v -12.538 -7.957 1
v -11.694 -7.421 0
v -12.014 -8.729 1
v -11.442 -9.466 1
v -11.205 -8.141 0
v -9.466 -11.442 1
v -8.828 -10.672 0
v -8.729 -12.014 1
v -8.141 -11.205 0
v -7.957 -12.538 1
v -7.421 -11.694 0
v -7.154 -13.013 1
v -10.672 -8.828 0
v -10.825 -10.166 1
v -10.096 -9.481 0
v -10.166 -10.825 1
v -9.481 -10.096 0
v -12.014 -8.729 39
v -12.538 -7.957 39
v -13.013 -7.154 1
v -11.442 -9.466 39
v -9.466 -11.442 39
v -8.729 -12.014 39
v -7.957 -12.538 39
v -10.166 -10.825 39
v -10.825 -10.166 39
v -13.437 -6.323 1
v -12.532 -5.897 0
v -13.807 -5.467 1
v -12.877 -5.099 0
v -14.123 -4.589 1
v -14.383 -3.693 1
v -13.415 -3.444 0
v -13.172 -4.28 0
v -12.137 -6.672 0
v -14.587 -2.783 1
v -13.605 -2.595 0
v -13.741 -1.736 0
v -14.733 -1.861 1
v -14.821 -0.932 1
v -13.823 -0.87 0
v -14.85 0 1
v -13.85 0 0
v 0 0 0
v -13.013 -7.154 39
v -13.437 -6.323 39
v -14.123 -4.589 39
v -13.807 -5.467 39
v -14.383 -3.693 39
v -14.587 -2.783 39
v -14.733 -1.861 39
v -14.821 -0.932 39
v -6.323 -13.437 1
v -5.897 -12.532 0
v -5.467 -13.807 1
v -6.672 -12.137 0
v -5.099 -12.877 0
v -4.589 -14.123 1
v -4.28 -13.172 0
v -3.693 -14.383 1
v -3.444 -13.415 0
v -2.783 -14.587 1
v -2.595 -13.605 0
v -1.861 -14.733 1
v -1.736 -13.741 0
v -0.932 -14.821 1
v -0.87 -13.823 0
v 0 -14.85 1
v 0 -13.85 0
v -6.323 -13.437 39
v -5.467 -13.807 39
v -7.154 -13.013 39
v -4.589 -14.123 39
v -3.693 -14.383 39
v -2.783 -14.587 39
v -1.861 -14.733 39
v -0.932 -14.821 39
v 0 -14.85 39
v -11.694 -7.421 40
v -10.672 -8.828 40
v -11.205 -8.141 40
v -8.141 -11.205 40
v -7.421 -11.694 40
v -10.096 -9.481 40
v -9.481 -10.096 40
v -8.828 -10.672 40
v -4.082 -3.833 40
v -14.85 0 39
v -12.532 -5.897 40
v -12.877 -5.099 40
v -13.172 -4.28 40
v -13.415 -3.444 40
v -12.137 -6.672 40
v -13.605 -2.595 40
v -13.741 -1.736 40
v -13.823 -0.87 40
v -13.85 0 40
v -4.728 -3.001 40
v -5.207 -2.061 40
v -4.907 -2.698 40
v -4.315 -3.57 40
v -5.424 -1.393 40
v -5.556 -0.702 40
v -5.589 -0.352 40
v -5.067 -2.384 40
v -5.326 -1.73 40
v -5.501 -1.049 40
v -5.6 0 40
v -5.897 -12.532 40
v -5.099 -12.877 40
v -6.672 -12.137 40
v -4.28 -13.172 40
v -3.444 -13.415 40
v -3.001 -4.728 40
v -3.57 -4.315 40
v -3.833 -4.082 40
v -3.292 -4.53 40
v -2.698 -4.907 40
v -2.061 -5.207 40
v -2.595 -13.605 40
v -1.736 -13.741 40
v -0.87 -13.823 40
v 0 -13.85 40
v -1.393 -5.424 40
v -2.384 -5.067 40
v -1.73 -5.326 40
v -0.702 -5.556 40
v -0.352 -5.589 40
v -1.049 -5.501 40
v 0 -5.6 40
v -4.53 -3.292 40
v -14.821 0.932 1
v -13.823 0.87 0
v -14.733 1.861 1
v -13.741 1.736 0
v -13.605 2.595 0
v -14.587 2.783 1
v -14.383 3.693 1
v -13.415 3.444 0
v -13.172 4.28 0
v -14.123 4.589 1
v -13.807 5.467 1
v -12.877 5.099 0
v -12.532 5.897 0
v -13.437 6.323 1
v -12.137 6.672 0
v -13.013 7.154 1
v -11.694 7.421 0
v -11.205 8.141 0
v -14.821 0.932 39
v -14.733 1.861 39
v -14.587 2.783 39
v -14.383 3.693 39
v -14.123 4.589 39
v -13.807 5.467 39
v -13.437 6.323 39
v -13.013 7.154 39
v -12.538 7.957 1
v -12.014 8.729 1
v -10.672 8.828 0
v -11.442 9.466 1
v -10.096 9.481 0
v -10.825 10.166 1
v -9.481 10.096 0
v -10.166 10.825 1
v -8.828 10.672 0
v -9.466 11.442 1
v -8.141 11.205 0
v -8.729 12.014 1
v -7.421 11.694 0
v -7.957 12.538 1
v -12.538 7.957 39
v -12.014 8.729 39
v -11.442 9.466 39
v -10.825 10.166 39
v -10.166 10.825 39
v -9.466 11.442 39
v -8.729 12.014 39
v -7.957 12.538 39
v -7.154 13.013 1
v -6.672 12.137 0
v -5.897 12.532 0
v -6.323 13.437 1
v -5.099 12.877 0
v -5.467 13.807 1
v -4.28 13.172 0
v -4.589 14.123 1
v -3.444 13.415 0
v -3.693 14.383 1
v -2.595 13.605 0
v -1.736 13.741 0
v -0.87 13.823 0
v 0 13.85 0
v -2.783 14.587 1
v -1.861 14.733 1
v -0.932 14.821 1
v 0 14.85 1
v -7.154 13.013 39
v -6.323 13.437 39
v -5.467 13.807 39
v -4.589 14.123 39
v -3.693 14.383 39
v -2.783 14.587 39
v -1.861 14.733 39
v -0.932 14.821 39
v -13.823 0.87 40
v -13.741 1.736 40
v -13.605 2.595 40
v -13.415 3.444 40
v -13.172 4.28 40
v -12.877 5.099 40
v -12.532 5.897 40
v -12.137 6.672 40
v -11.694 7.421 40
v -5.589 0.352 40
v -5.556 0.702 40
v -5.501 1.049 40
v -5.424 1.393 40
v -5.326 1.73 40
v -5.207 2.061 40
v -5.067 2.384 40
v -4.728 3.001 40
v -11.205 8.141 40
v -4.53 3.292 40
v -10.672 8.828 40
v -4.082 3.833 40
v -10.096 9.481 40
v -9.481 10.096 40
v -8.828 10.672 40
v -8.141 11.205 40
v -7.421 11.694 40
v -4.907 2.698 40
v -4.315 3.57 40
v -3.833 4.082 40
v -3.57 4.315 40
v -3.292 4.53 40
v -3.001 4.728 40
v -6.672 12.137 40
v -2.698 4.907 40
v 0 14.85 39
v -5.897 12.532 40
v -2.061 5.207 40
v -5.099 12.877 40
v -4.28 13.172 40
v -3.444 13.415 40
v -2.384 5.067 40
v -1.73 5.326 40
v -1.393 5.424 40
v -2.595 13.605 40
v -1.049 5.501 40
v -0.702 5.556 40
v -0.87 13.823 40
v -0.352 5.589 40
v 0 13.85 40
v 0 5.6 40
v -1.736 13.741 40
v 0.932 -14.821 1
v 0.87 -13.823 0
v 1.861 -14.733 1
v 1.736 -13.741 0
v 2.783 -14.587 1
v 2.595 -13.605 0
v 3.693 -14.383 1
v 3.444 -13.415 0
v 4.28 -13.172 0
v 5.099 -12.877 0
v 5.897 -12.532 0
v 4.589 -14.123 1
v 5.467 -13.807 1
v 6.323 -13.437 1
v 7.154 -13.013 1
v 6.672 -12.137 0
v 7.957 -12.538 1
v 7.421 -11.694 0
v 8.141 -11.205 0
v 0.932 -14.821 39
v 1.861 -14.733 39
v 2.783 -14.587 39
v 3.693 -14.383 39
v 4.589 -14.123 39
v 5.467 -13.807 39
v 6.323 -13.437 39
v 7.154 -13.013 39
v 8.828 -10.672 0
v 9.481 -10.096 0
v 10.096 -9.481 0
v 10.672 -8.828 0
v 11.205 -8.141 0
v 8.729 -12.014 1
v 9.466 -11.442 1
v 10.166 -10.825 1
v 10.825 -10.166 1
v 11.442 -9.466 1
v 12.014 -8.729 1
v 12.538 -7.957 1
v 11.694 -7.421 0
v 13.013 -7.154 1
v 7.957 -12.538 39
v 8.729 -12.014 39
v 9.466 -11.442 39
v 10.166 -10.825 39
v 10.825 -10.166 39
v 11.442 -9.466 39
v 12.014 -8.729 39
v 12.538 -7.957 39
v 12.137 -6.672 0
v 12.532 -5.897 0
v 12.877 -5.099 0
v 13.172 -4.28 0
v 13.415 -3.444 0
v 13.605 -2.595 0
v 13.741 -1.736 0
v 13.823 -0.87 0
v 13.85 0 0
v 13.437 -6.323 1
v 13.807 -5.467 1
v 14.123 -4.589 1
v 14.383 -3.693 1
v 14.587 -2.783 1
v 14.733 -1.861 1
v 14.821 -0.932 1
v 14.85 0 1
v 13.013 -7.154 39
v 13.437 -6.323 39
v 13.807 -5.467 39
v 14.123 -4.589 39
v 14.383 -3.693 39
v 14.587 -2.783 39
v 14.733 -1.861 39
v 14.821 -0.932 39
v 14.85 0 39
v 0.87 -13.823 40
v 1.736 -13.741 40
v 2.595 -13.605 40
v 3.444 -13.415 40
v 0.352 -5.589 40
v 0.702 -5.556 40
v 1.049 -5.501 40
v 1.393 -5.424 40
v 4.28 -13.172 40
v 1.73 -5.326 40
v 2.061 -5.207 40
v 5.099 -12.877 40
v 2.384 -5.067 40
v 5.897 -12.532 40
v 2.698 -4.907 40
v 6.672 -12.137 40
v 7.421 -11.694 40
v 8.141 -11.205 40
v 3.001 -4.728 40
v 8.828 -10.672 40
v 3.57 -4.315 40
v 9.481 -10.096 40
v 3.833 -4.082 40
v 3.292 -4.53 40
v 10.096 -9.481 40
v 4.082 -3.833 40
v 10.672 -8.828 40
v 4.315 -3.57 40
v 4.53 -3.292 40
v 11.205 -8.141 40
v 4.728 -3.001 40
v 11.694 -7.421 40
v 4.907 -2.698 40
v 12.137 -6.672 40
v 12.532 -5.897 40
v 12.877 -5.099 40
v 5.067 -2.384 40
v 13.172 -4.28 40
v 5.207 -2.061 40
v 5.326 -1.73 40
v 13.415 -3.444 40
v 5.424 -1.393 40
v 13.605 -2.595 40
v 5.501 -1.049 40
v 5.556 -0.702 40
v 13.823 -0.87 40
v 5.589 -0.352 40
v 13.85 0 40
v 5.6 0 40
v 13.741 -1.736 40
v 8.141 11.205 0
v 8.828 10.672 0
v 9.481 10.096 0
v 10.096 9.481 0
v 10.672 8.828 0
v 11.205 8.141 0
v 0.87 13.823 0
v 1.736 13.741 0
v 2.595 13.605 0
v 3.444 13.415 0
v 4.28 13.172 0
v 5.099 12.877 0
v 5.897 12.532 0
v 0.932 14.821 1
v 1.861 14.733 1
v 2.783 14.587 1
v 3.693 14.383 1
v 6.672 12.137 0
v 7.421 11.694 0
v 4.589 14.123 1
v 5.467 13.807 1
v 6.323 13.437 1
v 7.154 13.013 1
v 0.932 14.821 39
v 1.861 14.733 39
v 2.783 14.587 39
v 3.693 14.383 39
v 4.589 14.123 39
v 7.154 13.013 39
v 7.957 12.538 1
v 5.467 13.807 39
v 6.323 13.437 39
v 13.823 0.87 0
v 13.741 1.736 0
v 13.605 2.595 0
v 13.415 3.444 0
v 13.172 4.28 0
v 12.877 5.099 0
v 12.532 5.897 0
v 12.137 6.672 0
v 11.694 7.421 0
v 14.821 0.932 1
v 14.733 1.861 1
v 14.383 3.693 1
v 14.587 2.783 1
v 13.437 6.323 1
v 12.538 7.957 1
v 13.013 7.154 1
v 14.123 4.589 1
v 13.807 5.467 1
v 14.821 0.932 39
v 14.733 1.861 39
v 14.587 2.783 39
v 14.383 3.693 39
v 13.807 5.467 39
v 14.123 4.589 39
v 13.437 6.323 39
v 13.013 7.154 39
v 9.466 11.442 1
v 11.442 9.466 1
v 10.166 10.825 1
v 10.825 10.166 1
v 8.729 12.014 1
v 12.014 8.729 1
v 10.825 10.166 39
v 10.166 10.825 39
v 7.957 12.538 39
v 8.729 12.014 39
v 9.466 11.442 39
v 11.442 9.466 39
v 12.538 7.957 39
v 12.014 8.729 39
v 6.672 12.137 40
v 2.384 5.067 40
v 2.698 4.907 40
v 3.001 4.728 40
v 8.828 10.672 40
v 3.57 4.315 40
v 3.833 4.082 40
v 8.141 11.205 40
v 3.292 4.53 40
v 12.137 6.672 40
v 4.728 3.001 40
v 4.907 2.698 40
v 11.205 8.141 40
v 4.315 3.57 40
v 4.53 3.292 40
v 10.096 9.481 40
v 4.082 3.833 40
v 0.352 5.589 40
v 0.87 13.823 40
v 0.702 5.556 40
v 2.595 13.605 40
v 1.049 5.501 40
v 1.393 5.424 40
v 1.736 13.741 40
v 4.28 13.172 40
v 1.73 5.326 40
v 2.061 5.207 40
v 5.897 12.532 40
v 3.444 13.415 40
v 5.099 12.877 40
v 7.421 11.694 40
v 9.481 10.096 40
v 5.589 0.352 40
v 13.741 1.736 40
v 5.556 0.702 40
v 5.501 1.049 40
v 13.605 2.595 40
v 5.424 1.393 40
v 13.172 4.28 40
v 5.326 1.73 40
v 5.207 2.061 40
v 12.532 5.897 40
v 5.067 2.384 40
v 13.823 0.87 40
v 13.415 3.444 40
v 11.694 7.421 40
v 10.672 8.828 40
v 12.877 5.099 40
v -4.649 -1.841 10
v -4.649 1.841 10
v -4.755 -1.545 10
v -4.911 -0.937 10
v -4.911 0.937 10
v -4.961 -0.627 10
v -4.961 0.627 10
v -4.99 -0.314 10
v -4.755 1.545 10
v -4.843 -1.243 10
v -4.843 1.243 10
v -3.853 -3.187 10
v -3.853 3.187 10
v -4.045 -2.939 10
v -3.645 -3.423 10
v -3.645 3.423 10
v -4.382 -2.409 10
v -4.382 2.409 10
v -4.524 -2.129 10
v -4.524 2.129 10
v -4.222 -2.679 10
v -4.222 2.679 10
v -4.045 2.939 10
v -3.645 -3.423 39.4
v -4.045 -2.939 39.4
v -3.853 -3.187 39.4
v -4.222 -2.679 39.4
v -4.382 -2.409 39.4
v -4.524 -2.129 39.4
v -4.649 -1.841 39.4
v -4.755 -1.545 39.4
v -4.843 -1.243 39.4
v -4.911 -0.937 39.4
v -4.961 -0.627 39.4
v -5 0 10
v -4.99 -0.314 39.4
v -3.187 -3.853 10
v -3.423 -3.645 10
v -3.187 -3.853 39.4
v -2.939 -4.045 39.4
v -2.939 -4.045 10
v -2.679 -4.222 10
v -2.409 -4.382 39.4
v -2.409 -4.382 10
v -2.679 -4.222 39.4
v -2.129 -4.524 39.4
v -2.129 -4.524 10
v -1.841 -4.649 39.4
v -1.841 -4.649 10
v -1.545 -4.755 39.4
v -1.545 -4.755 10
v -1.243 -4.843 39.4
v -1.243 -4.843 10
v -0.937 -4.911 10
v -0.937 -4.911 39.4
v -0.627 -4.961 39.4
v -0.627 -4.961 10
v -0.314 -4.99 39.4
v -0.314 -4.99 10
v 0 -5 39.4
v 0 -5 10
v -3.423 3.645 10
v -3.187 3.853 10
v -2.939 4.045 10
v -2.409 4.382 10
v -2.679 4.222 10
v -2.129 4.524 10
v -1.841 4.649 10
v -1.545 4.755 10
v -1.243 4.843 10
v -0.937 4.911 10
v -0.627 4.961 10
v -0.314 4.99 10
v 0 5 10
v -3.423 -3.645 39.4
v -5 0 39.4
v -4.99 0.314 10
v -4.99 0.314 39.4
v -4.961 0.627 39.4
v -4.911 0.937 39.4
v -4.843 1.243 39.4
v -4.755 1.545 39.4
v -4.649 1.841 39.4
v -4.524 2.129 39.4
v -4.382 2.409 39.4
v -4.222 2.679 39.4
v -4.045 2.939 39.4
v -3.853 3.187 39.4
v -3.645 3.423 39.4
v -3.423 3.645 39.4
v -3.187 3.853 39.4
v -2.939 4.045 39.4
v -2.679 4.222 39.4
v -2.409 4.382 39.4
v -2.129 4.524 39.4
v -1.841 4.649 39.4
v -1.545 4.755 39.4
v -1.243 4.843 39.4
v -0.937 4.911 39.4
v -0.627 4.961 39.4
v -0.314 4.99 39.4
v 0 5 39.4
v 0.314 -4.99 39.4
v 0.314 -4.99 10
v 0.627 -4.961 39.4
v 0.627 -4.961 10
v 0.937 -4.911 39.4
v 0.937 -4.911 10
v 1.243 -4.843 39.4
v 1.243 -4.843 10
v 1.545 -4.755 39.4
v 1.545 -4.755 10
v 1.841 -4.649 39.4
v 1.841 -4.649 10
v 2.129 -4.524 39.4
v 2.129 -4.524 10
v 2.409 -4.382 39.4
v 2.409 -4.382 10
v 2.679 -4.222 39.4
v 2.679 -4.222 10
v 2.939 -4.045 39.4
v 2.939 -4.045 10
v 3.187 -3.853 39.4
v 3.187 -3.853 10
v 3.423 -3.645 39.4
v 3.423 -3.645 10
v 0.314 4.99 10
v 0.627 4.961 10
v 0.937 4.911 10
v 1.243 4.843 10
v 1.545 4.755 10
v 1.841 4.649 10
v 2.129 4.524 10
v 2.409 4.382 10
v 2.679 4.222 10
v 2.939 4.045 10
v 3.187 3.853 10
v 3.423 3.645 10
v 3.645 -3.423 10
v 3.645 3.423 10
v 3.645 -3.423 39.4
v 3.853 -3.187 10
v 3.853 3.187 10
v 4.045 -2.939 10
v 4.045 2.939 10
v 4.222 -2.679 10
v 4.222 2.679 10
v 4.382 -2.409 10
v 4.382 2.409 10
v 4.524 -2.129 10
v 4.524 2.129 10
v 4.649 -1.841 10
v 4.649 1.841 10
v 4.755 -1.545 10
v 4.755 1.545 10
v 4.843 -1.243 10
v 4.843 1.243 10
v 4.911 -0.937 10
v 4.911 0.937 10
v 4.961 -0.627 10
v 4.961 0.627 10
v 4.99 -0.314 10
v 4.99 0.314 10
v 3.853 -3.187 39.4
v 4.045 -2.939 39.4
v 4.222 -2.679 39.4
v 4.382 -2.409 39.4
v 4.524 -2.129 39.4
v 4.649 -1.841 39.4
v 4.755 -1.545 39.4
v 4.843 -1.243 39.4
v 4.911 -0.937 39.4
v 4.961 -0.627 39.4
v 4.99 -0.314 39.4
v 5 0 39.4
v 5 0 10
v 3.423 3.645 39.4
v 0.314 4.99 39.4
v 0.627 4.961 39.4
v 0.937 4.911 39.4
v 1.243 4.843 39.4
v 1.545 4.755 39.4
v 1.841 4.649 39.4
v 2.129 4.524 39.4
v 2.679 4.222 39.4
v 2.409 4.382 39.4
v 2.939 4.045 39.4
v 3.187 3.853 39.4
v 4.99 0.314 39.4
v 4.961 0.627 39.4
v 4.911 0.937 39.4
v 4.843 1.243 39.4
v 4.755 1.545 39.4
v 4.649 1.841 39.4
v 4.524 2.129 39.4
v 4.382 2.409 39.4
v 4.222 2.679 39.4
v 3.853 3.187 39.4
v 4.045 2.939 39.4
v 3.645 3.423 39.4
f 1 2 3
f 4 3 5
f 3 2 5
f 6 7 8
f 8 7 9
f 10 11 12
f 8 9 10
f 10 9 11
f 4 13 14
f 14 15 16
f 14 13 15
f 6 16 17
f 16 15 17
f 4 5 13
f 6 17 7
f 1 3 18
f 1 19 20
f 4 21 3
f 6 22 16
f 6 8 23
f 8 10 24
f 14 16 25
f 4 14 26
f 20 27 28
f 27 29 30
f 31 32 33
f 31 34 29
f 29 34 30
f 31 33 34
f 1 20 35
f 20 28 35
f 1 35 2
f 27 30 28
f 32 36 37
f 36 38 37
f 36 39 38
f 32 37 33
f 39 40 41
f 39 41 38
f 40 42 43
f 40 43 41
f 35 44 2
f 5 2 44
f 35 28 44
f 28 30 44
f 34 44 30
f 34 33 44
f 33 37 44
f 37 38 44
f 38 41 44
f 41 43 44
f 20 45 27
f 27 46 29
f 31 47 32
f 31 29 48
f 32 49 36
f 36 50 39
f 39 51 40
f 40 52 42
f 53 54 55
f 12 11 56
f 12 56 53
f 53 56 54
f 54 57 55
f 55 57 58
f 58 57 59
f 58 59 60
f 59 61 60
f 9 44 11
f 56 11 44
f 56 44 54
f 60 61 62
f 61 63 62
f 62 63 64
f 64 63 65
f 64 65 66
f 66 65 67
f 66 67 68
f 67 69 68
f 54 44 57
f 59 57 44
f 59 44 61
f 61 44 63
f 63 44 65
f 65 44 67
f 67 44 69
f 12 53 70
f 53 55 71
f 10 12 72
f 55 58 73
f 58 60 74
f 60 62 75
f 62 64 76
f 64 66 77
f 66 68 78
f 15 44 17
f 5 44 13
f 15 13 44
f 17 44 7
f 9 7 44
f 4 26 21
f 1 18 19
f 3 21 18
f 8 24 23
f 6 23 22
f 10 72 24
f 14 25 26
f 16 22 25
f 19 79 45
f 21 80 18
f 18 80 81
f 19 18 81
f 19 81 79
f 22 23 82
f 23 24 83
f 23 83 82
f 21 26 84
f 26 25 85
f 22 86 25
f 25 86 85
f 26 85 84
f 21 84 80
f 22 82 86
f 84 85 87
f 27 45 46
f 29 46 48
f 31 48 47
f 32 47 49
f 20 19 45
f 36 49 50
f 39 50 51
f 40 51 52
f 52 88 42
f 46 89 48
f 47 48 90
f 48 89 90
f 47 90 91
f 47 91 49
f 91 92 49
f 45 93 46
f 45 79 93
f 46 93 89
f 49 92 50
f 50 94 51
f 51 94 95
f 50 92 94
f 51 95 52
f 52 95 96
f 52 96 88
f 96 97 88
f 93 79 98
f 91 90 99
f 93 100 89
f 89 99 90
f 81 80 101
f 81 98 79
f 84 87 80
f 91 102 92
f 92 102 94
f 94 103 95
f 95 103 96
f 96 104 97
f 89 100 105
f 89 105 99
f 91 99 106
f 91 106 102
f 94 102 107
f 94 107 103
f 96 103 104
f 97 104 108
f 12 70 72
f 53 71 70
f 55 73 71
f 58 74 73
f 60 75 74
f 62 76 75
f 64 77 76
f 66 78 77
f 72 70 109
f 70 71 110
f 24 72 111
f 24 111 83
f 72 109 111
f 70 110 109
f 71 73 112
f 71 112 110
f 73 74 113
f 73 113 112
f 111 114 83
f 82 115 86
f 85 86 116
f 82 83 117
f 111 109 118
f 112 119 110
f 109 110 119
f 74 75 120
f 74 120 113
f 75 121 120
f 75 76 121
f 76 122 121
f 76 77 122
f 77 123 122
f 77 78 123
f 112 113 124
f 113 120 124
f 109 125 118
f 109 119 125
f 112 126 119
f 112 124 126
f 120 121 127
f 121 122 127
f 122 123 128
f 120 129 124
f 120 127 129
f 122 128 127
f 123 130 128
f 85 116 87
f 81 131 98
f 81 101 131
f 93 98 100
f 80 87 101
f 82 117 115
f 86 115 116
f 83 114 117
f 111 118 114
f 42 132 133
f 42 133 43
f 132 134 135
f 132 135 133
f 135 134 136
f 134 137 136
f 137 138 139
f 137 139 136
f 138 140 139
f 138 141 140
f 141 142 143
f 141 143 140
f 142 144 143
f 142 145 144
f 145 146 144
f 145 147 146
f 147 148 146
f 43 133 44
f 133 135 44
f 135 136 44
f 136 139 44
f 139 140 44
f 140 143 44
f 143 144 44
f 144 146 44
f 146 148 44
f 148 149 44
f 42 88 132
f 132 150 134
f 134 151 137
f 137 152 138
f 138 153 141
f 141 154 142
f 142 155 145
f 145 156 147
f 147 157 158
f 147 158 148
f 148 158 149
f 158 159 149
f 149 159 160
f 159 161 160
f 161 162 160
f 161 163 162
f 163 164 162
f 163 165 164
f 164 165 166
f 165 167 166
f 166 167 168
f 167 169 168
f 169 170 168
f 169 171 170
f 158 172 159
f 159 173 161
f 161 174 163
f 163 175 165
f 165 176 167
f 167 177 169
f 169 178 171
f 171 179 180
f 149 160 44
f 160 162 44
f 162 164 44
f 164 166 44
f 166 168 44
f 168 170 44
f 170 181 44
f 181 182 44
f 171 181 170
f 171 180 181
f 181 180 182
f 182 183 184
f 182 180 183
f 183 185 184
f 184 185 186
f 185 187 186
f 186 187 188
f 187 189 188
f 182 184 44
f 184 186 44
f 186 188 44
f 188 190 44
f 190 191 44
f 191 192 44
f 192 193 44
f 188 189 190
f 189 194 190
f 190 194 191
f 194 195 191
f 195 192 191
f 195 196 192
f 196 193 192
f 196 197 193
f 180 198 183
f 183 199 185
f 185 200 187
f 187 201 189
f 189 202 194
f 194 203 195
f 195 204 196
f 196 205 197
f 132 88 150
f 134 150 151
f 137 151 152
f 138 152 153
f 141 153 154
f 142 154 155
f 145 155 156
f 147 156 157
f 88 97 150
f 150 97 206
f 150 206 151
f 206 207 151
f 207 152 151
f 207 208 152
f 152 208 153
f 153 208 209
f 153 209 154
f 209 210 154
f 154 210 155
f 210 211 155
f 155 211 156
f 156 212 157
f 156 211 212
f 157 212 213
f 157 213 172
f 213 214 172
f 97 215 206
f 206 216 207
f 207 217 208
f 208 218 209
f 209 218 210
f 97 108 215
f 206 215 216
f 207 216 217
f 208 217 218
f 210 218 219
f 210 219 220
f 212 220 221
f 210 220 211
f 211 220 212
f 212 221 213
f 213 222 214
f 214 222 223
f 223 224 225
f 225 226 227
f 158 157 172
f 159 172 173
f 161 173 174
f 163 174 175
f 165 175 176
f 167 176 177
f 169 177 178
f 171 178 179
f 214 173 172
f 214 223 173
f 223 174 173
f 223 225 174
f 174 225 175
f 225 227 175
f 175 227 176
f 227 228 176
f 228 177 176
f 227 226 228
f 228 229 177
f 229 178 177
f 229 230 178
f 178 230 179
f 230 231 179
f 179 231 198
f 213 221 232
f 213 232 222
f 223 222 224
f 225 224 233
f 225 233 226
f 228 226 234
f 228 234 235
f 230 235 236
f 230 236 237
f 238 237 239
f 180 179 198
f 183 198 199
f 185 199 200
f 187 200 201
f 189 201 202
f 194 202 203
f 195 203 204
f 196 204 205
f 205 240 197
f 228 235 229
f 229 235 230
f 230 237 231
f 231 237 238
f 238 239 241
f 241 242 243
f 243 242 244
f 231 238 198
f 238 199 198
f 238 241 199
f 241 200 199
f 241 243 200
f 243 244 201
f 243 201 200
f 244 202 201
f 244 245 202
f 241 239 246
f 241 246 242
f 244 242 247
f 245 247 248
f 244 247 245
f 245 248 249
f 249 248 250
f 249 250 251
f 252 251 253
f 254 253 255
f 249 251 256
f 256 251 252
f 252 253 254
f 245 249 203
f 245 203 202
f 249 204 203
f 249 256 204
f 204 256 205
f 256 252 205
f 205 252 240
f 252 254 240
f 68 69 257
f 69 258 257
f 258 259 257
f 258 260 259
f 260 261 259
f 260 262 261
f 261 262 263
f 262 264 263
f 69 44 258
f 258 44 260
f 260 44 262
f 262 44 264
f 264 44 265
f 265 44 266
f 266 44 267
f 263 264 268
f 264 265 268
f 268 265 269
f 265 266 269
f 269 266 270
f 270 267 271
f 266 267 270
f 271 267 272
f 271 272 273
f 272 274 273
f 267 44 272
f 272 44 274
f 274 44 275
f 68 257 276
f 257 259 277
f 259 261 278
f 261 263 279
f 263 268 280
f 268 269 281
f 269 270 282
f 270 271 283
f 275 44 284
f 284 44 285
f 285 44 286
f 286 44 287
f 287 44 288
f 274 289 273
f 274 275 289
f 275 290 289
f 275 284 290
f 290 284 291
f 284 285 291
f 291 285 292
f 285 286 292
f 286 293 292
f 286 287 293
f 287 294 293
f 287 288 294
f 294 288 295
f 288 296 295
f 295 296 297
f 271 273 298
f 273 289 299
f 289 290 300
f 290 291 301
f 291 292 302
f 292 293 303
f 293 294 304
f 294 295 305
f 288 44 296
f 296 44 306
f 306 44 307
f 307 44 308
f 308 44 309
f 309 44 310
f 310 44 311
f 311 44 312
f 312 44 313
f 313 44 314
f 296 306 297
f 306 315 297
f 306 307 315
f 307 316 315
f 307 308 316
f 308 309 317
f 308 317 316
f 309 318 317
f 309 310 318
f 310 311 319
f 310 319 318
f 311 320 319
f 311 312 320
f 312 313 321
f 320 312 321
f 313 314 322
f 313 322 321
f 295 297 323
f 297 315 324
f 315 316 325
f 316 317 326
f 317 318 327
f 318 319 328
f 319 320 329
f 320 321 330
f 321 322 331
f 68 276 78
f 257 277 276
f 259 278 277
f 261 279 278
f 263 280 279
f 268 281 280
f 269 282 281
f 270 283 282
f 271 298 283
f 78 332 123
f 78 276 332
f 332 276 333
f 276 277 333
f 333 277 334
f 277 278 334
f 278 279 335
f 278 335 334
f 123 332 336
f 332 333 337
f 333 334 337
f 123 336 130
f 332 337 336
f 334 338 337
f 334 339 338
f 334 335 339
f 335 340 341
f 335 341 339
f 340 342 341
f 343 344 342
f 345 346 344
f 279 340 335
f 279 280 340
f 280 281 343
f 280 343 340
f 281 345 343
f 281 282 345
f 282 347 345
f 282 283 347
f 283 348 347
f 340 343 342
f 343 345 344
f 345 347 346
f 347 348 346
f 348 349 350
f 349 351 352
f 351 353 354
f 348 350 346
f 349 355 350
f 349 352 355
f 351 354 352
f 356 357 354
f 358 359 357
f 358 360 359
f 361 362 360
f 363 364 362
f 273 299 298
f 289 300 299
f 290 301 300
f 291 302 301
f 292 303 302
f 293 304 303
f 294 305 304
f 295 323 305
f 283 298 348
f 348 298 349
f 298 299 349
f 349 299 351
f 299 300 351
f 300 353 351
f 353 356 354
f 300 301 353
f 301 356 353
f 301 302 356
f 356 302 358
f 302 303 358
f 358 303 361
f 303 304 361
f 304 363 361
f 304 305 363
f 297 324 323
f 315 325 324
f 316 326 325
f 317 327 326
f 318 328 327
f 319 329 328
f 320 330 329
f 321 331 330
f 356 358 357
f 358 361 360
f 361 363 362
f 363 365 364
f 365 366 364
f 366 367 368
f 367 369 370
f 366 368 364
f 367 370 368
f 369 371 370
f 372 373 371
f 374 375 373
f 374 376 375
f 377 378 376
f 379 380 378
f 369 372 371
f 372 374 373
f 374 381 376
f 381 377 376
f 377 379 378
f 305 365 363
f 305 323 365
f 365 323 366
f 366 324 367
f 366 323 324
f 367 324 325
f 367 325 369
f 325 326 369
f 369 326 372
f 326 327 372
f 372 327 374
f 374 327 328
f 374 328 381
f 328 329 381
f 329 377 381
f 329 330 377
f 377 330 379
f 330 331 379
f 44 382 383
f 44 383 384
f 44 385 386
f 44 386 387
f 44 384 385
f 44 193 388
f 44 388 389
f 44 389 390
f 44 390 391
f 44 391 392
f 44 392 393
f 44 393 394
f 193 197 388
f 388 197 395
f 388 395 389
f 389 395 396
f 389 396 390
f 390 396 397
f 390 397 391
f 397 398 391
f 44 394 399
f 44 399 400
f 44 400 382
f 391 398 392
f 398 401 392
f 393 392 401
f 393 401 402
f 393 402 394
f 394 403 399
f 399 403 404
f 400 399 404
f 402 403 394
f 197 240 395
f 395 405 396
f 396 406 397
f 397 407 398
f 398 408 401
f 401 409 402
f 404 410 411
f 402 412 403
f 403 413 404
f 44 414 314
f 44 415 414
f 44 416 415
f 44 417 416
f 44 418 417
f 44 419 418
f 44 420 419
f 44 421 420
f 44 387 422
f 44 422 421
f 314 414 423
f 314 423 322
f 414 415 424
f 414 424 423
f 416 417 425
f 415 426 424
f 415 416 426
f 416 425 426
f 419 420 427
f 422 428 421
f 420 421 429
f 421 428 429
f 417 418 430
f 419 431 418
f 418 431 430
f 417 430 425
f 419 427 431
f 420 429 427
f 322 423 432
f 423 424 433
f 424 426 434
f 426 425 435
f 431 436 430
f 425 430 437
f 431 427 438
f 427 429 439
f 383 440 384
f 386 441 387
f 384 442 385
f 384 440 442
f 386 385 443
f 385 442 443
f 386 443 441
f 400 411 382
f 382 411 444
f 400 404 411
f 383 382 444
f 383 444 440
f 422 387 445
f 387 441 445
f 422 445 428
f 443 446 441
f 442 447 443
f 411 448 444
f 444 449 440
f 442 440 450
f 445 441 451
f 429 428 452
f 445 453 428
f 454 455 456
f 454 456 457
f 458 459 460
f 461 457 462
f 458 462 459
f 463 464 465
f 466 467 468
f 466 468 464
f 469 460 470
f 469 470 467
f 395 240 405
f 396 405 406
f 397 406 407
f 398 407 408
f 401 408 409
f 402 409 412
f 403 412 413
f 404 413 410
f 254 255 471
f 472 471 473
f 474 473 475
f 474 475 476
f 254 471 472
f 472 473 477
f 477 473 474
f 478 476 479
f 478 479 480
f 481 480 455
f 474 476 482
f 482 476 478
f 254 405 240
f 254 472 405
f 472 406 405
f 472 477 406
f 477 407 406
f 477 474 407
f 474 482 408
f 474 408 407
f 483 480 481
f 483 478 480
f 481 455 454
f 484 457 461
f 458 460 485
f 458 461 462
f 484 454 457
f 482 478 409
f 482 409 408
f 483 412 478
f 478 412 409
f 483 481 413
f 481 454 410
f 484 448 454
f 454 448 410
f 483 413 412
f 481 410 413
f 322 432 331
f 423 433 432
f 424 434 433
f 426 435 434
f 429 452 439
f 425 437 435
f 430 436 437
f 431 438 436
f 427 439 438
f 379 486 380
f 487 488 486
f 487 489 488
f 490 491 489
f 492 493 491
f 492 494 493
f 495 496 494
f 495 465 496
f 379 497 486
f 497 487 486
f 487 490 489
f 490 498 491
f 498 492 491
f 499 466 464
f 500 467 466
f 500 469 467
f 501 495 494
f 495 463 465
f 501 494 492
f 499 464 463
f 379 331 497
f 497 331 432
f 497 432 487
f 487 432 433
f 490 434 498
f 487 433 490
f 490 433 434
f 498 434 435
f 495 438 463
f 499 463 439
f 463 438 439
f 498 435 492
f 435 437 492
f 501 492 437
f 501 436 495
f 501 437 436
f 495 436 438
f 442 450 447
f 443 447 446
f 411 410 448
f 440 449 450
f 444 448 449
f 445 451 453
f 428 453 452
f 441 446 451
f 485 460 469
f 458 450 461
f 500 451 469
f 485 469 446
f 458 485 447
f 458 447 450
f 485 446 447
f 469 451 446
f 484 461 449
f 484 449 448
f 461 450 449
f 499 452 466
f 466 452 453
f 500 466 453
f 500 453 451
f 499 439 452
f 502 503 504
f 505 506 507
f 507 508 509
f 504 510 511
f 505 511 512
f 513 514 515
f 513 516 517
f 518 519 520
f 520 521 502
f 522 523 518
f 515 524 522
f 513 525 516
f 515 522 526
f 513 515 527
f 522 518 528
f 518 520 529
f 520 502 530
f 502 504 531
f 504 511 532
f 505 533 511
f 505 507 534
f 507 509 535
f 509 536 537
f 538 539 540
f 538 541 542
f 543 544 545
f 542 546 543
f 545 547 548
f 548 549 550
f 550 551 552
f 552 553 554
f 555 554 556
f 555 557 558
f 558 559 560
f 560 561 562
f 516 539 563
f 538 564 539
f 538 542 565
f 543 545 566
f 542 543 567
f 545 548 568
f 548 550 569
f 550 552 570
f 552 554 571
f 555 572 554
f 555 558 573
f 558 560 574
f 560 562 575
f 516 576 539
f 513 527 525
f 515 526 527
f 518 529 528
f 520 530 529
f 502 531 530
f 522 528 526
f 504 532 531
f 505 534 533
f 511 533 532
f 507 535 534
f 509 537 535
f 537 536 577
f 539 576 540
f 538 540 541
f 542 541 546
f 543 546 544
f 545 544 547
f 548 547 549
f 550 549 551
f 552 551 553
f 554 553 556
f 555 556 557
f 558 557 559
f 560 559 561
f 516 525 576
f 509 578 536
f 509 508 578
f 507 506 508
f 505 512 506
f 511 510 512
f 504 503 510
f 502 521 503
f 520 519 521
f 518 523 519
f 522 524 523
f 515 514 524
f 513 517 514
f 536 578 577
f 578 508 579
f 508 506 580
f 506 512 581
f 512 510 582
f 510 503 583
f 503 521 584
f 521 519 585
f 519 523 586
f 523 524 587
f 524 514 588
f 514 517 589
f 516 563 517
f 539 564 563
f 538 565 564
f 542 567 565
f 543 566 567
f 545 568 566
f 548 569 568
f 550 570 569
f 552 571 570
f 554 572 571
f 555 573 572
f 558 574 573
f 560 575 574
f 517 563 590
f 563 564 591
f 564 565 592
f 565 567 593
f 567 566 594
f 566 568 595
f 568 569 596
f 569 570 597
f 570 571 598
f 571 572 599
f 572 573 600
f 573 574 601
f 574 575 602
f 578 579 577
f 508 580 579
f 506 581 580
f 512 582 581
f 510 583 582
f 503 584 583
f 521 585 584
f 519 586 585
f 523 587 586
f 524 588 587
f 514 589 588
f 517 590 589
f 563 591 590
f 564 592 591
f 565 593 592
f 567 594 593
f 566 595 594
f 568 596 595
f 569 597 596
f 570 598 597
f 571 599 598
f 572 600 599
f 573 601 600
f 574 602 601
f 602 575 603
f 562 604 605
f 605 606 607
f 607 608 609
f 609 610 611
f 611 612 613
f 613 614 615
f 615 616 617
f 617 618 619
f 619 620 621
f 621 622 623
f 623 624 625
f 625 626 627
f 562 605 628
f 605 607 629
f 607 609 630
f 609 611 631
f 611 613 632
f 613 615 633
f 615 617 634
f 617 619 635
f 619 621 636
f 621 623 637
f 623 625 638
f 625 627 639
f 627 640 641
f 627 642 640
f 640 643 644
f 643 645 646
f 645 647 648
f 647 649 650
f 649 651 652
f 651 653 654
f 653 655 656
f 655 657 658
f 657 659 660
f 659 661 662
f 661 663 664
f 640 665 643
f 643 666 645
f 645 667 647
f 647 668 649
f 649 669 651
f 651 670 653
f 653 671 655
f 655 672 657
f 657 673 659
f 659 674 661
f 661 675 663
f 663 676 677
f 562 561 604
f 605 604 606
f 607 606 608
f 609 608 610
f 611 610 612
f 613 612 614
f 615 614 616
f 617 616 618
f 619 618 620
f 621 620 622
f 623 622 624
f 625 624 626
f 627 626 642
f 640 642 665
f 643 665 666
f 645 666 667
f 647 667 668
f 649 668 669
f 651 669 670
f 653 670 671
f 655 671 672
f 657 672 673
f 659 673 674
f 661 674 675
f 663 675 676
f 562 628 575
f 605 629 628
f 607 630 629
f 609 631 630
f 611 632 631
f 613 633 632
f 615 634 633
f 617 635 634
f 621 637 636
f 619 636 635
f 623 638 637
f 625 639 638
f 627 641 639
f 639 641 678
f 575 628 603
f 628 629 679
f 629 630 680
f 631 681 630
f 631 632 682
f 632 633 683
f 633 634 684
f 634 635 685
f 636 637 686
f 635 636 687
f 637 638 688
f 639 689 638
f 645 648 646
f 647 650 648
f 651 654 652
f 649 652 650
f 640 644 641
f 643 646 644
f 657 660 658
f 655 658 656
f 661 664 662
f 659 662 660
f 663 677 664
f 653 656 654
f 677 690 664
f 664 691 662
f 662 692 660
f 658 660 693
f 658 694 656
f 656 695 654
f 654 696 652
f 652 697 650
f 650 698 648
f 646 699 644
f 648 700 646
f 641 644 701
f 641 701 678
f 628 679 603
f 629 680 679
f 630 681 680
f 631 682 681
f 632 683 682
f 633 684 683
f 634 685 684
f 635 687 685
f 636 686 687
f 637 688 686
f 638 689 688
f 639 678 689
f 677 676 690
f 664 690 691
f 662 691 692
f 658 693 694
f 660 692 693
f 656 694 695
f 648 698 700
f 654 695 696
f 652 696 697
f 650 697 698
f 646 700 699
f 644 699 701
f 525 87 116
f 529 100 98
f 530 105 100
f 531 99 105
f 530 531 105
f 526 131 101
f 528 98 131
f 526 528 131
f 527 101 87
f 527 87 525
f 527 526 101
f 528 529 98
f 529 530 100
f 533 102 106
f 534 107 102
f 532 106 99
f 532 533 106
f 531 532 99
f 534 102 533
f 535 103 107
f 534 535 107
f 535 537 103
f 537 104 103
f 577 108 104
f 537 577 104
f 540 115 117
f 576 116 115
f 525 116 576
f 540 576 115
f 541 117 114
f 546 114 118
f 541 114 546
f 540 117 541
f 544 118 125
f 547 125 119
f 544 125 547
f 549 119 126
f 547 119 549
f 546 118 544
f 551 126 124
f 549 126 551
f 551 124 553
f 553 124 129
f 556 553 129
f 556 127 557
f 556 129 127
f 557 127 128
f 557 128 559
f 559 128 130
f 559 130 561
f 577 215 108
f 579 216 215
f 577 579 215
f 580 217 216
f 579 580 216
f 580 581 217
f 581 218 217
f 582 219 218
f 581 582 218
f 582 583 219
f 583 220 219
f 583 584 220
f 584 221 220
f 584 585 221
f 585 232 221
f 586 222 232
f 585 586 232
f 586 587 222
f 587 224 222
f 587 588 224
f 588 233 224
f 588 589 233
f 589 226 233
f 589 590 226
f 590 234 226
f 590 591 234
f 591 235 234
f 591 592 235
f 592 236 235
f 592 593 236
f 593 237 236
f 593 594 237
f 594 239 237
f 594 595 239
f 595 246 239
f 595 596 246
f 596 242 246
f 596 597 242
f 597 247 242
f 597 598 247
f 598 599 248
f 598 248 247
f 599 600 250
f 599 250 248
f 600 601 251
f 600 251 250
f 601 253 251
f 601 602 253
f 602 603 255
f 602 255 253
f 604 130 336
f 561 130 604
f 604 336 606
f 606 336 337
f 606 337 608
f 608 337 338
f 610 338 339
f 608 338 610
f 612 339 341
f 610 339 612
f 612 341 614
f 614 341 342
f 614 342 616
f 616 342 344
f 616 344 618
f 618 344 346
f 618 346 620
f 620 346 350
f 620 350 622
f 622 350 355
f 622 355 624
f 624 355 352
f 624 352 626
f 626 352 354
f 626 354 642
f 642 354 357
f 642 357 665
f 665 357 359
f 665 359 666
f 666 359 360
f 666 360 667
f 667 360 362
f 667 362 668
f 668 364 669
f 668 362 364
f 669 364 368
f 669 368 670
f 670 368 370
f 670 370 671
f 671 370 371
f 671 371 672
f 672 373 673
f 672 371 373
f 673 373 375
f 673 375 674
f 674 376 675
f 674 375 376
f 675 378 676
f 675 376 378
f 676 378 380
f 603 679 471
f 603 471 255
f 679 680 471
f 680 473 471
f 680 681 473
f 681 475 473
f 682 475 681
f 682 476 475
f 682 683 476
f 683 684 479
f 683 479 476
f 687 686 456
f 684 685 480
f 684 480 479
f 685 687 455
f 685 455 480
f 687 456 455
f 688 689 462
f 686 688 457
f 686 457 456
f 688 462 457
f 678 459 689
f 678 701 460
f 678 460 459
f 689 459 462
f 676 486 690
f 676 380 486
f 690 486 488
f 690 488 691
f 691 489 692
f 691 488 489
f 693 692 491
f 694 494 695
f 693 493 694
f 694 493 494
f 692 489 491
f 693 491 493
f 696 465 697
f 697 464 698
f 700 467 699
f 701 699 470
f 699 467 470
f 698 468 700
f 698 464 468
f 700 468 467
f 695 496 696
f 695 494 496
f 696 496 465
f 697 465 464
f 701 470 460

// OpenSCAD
// ============================================================
// Dowel end cap — a blind socket that closes off a dowel end
//
// A plain cylinder with a cylindrical recess bored into one
// end. The dowel pushes into the recess until it bottoms out;
// the remaining material caps the end.
//
// Optionally a countersunk screw hole runs through the closed
// end, so a flat-head screw can pull the cap down onto the
// dowel instead of the fit or a glue line holding it there.
//
// Modeled mouth up, closed end on the plate.
//
// The cap DEFINES its own proportions from one measurement.
// Everything is driven by the dowel diameter plus the meat you
// want around it, so the outside diameter and the overall
// length both fall out of the numbers below rather than being
// set directly.
//
// The recess is a dimension inside a hollow solid, so it is
// never measured — it is bored to the dowel diameter plus a
// clearance knob. Measure the dowel, not the hole you want.
//
// PRINT NOTES:
// - PETG or PLA, no supports needed.
// - Print as modeled, closed end down. The bore opens upward,
//   so nothing bridges, and the visible end face is laid
//   against the plate. Flipped, the bore roof has to bridge
//   its full width — it works, but it leaves a rough ceiling
//   for the dowel to bottom out against.
// - The bore prints round with the axis vertical either way.
// - Chamfers break both rims and take the elephant foot off
//   whichever end lands on the plate.
// - The countersink opens at the plate and closes in at 45
//   deg, so it is self-supporting exactly like the chamfers.
//   It makes the first layer a ring rather than a disc, which
//   costs a little bed adhesion — the end face is wide, so
//   there is plenty left.
// ============================================================

// ===== MEASURE THESE ON YOUR ACTUAL DOWEL AND SCREW =====
// All outside-the-solid measurements, so plain calipers reach them. Each names
// the caliper it needs by the size printed on the tool: a 6 in caliper stops at
// 150 mm, an 8 in at 200 mm, a 12 in at 300 mm

// Outer diameter of the dowel (mm) — outside jaws on the dowel, 6 in caliper.
// Take it in two or three places and around a couple of rotations: wooden
// dowel is rarely round and rarely the size on the label. Use the largest
// reading, since that is the one that has to fit
dowel_d = 9.7;

// Outer diameter of the screw over its threads (mm) — outside jaws on the
// threaded shank, 6 in caliper. Only used when screw_hole is on
screw_shank_d = 3;

// Outer diameter of the screw head at its widest (mm) — outside jaws across
// the top face of a flat head, 6 in caliper. The countersink is cut to this,
// so it is the number that decides how deep the cone goes. Only used when
// screw_hole is on
screw_head_d = 7;

// ===== DECIDE THESE =====
// Choices, not measurements — the cap is whatever these make it

// Bore a countersunk screw hole through the closed end, for a flat-head screw
// driven into the end grain of the dowel. Off leaves the plain cap
screw_hole = false;

// How far the dowel goes into the cap (mm). Deeper grips better and resists
// being levered off sideways; about 1.5 dowel diameters is plenty
penetration_depth = 30;

// Thickness of material around the dowel (mm). Sets the outside diameter and
// the thickness capping the end, both at once
wall_meat = 10;

// ===== TUNE THESE =====
dowel_clearance = 0.3; // Added to the bored diameter for a glue or friction fit (mm) — raise if it will not seat, drop toward 0 for a tighter press
screw_clearance = 0.4; // Added to both bored screw diameters (mm) — the shank slips through rather than threading into the plastic, and the head sinks half of this below flush
chamfer = 1; // Break on both outer rims (mm)
lead_in = 0.6; // Funnel at the mouth of the bore, to start the dowel square (mm)

$fn = 100;

// ===== DERIVED =====
bore_d = dowel_d + dowel_clearance;
cap_d = dowel_d + 2 * wall_meat;
cap_length = penetration_depth + wall_meat;
screw_shank_hole_d = screw_shank_d + screw_clearance;
screw_head_hole_d = screw_head_d + screw_clearance;

// Depth of the countersink cone. It is half the difference of the two bored
// diameters and nothing else, which is what makes the cone 45 deg to the plate
// — a 90 deg included angle, the flat-head standard — whatever screw it is cut
// for
countersink_depth = (screw_head_hole_d - screw_shank_hole_d) / 2;

// Straight-walled part of the screw hole, left under the cone. The cone eats
// down from the plate and the bore floor caps it from above, so this is what
// keeps the two from meeting
screw_seat = wall_meat - countersink_depth;

// Material left on the end face, once the outer chamfer has taken from the
// outside and the countersink mouth has opened up in the middle
end_face_ring = (cap_d - 2 * chamfer - screw_head_hole_d) / 2;

// Material left on the face of the rim, once the outer chamfer has taken from
// the outside and the lead-in funnel has taken from the inside. The cap is
// only as strong at the mouth as this, and it is the first thing a large
// chamfer or a generous lead-in eats
rim_face = (cap_d - bore_d) / 2 - chamfer - lead_in;

echo(str("outside diameter = ", cap_d, " mm"));
echo(str("overall length = ", cap_length, " mm"));
echo(str("bored diameter = ", bore_d, " mm"));
echo(str("rim face at the mouth = ", rim_face, " mm"));

if (screw_hole) {
  echo(str("screw shank hole = ", screw_shank_hole_d, " mm"));
  echo(str("countersink mouth = ", screw_head_hole_d, " mm across, ", countersink_depth, " mm deep"));
  echo(str("straight hole under the countersink = ", screw_seat, " mm"));
  echo(str("end face ring outside the countersink = ", end_face_ring, " mm"));
}

assert(wall_meat > 0, "wall_meat has to be positive — there is no cap without material around the dowel");
assert(penetration_depth > 0, "penetration_depth has to be positive — the dowel has to go somewhere");
assert(bore_d > 0, "dowel_clearance has closed the bore — it cannot be more negative than the dowel is wide");
assert(rim_face > 0, "the mouth has no rim left — reduce chamfer or lead_in, or add wall_meat");
assert(chamfer < cap_length / 2, "the two outer chamfers have met in the middle — reduce chamfer");
assert(lead_in < penetration_depth, "the lead-in funnel is deeper than the bore — reduce lead_in");
assert(!screw_hole || screw_head_d > screw_shank_d, "screw_head_d is no wider than screw_shank_d — that screw has no head to countersink");
assert(!screw_hole || screw_shank_hole_d < bore_d, "the screw hole is wider than the bore — it would break out through the socket wall instead of into the end of the dowel");
assert(!screw_hole || screw_seat > 0, "the countersink has cut through into the bore — use a smaller screw or add wall_meat");
assert(!screw_hole || end_face_ring > 0, "the countersink has run off the end face — use a smaller screw head, reduce chamfer, or add wall_meat");

// Outer silhouette, revolved: a cylinder with both rims broken. x is radius
// out from the axis, y is height up from the closed end
module cap_body() {
  r = cap_d / 2;
  rotate_extrude()
    polygon([
      [0, 0],
      [r - chamfer, 0],
      [r, chamfer],
      [r, cap_length - chamfer],
      [r - chamfer, cap_length],
      [0, cap_length],
    ]);
}

module dowel_endcap() {
  difference() {
    cap_body();

    // Blind bore for the dowel, opening upward at the mouth
    translate([0, 0, wall_meat])
      cylinder(d = bore_d, h = penetration_depth + 1);

    // Funnel at the mouth, so the dowel starts square instead of
    // catching on the rim
    translate([0, 0, cap_length - lead_in])
      cylinder(d1 = bore_d, d2 = bore_d + 2 * lead_in, h = lead_in);

    if (screw_hole) {
      // Clearance hole for the shank, from the plate up through the end
      // wall and into the bore
      cylinder(d = screw_shank_hole_d, h = wall_meat + 1);

      // Countersink, so a flat head finishes flush with the end face. The
      // cone's radial change equals its height, so it stays at 45 deg to
      // the plate whatever screw it is cut for. It is dropped 1 mm below
      // the plate — which is where the 2 mm on the mouth diameter comes
      // from — so the mouth cuts cleanly instead of landing on the end
      // face as a coincident edge
      translate([0, 0, -1])
        cylinder(d1 = screw_head_hole_d + 2, d2 = screw_shank_hole_d, h = countersink_depth + 1);
    }
  }
}

dowel_endcap();
